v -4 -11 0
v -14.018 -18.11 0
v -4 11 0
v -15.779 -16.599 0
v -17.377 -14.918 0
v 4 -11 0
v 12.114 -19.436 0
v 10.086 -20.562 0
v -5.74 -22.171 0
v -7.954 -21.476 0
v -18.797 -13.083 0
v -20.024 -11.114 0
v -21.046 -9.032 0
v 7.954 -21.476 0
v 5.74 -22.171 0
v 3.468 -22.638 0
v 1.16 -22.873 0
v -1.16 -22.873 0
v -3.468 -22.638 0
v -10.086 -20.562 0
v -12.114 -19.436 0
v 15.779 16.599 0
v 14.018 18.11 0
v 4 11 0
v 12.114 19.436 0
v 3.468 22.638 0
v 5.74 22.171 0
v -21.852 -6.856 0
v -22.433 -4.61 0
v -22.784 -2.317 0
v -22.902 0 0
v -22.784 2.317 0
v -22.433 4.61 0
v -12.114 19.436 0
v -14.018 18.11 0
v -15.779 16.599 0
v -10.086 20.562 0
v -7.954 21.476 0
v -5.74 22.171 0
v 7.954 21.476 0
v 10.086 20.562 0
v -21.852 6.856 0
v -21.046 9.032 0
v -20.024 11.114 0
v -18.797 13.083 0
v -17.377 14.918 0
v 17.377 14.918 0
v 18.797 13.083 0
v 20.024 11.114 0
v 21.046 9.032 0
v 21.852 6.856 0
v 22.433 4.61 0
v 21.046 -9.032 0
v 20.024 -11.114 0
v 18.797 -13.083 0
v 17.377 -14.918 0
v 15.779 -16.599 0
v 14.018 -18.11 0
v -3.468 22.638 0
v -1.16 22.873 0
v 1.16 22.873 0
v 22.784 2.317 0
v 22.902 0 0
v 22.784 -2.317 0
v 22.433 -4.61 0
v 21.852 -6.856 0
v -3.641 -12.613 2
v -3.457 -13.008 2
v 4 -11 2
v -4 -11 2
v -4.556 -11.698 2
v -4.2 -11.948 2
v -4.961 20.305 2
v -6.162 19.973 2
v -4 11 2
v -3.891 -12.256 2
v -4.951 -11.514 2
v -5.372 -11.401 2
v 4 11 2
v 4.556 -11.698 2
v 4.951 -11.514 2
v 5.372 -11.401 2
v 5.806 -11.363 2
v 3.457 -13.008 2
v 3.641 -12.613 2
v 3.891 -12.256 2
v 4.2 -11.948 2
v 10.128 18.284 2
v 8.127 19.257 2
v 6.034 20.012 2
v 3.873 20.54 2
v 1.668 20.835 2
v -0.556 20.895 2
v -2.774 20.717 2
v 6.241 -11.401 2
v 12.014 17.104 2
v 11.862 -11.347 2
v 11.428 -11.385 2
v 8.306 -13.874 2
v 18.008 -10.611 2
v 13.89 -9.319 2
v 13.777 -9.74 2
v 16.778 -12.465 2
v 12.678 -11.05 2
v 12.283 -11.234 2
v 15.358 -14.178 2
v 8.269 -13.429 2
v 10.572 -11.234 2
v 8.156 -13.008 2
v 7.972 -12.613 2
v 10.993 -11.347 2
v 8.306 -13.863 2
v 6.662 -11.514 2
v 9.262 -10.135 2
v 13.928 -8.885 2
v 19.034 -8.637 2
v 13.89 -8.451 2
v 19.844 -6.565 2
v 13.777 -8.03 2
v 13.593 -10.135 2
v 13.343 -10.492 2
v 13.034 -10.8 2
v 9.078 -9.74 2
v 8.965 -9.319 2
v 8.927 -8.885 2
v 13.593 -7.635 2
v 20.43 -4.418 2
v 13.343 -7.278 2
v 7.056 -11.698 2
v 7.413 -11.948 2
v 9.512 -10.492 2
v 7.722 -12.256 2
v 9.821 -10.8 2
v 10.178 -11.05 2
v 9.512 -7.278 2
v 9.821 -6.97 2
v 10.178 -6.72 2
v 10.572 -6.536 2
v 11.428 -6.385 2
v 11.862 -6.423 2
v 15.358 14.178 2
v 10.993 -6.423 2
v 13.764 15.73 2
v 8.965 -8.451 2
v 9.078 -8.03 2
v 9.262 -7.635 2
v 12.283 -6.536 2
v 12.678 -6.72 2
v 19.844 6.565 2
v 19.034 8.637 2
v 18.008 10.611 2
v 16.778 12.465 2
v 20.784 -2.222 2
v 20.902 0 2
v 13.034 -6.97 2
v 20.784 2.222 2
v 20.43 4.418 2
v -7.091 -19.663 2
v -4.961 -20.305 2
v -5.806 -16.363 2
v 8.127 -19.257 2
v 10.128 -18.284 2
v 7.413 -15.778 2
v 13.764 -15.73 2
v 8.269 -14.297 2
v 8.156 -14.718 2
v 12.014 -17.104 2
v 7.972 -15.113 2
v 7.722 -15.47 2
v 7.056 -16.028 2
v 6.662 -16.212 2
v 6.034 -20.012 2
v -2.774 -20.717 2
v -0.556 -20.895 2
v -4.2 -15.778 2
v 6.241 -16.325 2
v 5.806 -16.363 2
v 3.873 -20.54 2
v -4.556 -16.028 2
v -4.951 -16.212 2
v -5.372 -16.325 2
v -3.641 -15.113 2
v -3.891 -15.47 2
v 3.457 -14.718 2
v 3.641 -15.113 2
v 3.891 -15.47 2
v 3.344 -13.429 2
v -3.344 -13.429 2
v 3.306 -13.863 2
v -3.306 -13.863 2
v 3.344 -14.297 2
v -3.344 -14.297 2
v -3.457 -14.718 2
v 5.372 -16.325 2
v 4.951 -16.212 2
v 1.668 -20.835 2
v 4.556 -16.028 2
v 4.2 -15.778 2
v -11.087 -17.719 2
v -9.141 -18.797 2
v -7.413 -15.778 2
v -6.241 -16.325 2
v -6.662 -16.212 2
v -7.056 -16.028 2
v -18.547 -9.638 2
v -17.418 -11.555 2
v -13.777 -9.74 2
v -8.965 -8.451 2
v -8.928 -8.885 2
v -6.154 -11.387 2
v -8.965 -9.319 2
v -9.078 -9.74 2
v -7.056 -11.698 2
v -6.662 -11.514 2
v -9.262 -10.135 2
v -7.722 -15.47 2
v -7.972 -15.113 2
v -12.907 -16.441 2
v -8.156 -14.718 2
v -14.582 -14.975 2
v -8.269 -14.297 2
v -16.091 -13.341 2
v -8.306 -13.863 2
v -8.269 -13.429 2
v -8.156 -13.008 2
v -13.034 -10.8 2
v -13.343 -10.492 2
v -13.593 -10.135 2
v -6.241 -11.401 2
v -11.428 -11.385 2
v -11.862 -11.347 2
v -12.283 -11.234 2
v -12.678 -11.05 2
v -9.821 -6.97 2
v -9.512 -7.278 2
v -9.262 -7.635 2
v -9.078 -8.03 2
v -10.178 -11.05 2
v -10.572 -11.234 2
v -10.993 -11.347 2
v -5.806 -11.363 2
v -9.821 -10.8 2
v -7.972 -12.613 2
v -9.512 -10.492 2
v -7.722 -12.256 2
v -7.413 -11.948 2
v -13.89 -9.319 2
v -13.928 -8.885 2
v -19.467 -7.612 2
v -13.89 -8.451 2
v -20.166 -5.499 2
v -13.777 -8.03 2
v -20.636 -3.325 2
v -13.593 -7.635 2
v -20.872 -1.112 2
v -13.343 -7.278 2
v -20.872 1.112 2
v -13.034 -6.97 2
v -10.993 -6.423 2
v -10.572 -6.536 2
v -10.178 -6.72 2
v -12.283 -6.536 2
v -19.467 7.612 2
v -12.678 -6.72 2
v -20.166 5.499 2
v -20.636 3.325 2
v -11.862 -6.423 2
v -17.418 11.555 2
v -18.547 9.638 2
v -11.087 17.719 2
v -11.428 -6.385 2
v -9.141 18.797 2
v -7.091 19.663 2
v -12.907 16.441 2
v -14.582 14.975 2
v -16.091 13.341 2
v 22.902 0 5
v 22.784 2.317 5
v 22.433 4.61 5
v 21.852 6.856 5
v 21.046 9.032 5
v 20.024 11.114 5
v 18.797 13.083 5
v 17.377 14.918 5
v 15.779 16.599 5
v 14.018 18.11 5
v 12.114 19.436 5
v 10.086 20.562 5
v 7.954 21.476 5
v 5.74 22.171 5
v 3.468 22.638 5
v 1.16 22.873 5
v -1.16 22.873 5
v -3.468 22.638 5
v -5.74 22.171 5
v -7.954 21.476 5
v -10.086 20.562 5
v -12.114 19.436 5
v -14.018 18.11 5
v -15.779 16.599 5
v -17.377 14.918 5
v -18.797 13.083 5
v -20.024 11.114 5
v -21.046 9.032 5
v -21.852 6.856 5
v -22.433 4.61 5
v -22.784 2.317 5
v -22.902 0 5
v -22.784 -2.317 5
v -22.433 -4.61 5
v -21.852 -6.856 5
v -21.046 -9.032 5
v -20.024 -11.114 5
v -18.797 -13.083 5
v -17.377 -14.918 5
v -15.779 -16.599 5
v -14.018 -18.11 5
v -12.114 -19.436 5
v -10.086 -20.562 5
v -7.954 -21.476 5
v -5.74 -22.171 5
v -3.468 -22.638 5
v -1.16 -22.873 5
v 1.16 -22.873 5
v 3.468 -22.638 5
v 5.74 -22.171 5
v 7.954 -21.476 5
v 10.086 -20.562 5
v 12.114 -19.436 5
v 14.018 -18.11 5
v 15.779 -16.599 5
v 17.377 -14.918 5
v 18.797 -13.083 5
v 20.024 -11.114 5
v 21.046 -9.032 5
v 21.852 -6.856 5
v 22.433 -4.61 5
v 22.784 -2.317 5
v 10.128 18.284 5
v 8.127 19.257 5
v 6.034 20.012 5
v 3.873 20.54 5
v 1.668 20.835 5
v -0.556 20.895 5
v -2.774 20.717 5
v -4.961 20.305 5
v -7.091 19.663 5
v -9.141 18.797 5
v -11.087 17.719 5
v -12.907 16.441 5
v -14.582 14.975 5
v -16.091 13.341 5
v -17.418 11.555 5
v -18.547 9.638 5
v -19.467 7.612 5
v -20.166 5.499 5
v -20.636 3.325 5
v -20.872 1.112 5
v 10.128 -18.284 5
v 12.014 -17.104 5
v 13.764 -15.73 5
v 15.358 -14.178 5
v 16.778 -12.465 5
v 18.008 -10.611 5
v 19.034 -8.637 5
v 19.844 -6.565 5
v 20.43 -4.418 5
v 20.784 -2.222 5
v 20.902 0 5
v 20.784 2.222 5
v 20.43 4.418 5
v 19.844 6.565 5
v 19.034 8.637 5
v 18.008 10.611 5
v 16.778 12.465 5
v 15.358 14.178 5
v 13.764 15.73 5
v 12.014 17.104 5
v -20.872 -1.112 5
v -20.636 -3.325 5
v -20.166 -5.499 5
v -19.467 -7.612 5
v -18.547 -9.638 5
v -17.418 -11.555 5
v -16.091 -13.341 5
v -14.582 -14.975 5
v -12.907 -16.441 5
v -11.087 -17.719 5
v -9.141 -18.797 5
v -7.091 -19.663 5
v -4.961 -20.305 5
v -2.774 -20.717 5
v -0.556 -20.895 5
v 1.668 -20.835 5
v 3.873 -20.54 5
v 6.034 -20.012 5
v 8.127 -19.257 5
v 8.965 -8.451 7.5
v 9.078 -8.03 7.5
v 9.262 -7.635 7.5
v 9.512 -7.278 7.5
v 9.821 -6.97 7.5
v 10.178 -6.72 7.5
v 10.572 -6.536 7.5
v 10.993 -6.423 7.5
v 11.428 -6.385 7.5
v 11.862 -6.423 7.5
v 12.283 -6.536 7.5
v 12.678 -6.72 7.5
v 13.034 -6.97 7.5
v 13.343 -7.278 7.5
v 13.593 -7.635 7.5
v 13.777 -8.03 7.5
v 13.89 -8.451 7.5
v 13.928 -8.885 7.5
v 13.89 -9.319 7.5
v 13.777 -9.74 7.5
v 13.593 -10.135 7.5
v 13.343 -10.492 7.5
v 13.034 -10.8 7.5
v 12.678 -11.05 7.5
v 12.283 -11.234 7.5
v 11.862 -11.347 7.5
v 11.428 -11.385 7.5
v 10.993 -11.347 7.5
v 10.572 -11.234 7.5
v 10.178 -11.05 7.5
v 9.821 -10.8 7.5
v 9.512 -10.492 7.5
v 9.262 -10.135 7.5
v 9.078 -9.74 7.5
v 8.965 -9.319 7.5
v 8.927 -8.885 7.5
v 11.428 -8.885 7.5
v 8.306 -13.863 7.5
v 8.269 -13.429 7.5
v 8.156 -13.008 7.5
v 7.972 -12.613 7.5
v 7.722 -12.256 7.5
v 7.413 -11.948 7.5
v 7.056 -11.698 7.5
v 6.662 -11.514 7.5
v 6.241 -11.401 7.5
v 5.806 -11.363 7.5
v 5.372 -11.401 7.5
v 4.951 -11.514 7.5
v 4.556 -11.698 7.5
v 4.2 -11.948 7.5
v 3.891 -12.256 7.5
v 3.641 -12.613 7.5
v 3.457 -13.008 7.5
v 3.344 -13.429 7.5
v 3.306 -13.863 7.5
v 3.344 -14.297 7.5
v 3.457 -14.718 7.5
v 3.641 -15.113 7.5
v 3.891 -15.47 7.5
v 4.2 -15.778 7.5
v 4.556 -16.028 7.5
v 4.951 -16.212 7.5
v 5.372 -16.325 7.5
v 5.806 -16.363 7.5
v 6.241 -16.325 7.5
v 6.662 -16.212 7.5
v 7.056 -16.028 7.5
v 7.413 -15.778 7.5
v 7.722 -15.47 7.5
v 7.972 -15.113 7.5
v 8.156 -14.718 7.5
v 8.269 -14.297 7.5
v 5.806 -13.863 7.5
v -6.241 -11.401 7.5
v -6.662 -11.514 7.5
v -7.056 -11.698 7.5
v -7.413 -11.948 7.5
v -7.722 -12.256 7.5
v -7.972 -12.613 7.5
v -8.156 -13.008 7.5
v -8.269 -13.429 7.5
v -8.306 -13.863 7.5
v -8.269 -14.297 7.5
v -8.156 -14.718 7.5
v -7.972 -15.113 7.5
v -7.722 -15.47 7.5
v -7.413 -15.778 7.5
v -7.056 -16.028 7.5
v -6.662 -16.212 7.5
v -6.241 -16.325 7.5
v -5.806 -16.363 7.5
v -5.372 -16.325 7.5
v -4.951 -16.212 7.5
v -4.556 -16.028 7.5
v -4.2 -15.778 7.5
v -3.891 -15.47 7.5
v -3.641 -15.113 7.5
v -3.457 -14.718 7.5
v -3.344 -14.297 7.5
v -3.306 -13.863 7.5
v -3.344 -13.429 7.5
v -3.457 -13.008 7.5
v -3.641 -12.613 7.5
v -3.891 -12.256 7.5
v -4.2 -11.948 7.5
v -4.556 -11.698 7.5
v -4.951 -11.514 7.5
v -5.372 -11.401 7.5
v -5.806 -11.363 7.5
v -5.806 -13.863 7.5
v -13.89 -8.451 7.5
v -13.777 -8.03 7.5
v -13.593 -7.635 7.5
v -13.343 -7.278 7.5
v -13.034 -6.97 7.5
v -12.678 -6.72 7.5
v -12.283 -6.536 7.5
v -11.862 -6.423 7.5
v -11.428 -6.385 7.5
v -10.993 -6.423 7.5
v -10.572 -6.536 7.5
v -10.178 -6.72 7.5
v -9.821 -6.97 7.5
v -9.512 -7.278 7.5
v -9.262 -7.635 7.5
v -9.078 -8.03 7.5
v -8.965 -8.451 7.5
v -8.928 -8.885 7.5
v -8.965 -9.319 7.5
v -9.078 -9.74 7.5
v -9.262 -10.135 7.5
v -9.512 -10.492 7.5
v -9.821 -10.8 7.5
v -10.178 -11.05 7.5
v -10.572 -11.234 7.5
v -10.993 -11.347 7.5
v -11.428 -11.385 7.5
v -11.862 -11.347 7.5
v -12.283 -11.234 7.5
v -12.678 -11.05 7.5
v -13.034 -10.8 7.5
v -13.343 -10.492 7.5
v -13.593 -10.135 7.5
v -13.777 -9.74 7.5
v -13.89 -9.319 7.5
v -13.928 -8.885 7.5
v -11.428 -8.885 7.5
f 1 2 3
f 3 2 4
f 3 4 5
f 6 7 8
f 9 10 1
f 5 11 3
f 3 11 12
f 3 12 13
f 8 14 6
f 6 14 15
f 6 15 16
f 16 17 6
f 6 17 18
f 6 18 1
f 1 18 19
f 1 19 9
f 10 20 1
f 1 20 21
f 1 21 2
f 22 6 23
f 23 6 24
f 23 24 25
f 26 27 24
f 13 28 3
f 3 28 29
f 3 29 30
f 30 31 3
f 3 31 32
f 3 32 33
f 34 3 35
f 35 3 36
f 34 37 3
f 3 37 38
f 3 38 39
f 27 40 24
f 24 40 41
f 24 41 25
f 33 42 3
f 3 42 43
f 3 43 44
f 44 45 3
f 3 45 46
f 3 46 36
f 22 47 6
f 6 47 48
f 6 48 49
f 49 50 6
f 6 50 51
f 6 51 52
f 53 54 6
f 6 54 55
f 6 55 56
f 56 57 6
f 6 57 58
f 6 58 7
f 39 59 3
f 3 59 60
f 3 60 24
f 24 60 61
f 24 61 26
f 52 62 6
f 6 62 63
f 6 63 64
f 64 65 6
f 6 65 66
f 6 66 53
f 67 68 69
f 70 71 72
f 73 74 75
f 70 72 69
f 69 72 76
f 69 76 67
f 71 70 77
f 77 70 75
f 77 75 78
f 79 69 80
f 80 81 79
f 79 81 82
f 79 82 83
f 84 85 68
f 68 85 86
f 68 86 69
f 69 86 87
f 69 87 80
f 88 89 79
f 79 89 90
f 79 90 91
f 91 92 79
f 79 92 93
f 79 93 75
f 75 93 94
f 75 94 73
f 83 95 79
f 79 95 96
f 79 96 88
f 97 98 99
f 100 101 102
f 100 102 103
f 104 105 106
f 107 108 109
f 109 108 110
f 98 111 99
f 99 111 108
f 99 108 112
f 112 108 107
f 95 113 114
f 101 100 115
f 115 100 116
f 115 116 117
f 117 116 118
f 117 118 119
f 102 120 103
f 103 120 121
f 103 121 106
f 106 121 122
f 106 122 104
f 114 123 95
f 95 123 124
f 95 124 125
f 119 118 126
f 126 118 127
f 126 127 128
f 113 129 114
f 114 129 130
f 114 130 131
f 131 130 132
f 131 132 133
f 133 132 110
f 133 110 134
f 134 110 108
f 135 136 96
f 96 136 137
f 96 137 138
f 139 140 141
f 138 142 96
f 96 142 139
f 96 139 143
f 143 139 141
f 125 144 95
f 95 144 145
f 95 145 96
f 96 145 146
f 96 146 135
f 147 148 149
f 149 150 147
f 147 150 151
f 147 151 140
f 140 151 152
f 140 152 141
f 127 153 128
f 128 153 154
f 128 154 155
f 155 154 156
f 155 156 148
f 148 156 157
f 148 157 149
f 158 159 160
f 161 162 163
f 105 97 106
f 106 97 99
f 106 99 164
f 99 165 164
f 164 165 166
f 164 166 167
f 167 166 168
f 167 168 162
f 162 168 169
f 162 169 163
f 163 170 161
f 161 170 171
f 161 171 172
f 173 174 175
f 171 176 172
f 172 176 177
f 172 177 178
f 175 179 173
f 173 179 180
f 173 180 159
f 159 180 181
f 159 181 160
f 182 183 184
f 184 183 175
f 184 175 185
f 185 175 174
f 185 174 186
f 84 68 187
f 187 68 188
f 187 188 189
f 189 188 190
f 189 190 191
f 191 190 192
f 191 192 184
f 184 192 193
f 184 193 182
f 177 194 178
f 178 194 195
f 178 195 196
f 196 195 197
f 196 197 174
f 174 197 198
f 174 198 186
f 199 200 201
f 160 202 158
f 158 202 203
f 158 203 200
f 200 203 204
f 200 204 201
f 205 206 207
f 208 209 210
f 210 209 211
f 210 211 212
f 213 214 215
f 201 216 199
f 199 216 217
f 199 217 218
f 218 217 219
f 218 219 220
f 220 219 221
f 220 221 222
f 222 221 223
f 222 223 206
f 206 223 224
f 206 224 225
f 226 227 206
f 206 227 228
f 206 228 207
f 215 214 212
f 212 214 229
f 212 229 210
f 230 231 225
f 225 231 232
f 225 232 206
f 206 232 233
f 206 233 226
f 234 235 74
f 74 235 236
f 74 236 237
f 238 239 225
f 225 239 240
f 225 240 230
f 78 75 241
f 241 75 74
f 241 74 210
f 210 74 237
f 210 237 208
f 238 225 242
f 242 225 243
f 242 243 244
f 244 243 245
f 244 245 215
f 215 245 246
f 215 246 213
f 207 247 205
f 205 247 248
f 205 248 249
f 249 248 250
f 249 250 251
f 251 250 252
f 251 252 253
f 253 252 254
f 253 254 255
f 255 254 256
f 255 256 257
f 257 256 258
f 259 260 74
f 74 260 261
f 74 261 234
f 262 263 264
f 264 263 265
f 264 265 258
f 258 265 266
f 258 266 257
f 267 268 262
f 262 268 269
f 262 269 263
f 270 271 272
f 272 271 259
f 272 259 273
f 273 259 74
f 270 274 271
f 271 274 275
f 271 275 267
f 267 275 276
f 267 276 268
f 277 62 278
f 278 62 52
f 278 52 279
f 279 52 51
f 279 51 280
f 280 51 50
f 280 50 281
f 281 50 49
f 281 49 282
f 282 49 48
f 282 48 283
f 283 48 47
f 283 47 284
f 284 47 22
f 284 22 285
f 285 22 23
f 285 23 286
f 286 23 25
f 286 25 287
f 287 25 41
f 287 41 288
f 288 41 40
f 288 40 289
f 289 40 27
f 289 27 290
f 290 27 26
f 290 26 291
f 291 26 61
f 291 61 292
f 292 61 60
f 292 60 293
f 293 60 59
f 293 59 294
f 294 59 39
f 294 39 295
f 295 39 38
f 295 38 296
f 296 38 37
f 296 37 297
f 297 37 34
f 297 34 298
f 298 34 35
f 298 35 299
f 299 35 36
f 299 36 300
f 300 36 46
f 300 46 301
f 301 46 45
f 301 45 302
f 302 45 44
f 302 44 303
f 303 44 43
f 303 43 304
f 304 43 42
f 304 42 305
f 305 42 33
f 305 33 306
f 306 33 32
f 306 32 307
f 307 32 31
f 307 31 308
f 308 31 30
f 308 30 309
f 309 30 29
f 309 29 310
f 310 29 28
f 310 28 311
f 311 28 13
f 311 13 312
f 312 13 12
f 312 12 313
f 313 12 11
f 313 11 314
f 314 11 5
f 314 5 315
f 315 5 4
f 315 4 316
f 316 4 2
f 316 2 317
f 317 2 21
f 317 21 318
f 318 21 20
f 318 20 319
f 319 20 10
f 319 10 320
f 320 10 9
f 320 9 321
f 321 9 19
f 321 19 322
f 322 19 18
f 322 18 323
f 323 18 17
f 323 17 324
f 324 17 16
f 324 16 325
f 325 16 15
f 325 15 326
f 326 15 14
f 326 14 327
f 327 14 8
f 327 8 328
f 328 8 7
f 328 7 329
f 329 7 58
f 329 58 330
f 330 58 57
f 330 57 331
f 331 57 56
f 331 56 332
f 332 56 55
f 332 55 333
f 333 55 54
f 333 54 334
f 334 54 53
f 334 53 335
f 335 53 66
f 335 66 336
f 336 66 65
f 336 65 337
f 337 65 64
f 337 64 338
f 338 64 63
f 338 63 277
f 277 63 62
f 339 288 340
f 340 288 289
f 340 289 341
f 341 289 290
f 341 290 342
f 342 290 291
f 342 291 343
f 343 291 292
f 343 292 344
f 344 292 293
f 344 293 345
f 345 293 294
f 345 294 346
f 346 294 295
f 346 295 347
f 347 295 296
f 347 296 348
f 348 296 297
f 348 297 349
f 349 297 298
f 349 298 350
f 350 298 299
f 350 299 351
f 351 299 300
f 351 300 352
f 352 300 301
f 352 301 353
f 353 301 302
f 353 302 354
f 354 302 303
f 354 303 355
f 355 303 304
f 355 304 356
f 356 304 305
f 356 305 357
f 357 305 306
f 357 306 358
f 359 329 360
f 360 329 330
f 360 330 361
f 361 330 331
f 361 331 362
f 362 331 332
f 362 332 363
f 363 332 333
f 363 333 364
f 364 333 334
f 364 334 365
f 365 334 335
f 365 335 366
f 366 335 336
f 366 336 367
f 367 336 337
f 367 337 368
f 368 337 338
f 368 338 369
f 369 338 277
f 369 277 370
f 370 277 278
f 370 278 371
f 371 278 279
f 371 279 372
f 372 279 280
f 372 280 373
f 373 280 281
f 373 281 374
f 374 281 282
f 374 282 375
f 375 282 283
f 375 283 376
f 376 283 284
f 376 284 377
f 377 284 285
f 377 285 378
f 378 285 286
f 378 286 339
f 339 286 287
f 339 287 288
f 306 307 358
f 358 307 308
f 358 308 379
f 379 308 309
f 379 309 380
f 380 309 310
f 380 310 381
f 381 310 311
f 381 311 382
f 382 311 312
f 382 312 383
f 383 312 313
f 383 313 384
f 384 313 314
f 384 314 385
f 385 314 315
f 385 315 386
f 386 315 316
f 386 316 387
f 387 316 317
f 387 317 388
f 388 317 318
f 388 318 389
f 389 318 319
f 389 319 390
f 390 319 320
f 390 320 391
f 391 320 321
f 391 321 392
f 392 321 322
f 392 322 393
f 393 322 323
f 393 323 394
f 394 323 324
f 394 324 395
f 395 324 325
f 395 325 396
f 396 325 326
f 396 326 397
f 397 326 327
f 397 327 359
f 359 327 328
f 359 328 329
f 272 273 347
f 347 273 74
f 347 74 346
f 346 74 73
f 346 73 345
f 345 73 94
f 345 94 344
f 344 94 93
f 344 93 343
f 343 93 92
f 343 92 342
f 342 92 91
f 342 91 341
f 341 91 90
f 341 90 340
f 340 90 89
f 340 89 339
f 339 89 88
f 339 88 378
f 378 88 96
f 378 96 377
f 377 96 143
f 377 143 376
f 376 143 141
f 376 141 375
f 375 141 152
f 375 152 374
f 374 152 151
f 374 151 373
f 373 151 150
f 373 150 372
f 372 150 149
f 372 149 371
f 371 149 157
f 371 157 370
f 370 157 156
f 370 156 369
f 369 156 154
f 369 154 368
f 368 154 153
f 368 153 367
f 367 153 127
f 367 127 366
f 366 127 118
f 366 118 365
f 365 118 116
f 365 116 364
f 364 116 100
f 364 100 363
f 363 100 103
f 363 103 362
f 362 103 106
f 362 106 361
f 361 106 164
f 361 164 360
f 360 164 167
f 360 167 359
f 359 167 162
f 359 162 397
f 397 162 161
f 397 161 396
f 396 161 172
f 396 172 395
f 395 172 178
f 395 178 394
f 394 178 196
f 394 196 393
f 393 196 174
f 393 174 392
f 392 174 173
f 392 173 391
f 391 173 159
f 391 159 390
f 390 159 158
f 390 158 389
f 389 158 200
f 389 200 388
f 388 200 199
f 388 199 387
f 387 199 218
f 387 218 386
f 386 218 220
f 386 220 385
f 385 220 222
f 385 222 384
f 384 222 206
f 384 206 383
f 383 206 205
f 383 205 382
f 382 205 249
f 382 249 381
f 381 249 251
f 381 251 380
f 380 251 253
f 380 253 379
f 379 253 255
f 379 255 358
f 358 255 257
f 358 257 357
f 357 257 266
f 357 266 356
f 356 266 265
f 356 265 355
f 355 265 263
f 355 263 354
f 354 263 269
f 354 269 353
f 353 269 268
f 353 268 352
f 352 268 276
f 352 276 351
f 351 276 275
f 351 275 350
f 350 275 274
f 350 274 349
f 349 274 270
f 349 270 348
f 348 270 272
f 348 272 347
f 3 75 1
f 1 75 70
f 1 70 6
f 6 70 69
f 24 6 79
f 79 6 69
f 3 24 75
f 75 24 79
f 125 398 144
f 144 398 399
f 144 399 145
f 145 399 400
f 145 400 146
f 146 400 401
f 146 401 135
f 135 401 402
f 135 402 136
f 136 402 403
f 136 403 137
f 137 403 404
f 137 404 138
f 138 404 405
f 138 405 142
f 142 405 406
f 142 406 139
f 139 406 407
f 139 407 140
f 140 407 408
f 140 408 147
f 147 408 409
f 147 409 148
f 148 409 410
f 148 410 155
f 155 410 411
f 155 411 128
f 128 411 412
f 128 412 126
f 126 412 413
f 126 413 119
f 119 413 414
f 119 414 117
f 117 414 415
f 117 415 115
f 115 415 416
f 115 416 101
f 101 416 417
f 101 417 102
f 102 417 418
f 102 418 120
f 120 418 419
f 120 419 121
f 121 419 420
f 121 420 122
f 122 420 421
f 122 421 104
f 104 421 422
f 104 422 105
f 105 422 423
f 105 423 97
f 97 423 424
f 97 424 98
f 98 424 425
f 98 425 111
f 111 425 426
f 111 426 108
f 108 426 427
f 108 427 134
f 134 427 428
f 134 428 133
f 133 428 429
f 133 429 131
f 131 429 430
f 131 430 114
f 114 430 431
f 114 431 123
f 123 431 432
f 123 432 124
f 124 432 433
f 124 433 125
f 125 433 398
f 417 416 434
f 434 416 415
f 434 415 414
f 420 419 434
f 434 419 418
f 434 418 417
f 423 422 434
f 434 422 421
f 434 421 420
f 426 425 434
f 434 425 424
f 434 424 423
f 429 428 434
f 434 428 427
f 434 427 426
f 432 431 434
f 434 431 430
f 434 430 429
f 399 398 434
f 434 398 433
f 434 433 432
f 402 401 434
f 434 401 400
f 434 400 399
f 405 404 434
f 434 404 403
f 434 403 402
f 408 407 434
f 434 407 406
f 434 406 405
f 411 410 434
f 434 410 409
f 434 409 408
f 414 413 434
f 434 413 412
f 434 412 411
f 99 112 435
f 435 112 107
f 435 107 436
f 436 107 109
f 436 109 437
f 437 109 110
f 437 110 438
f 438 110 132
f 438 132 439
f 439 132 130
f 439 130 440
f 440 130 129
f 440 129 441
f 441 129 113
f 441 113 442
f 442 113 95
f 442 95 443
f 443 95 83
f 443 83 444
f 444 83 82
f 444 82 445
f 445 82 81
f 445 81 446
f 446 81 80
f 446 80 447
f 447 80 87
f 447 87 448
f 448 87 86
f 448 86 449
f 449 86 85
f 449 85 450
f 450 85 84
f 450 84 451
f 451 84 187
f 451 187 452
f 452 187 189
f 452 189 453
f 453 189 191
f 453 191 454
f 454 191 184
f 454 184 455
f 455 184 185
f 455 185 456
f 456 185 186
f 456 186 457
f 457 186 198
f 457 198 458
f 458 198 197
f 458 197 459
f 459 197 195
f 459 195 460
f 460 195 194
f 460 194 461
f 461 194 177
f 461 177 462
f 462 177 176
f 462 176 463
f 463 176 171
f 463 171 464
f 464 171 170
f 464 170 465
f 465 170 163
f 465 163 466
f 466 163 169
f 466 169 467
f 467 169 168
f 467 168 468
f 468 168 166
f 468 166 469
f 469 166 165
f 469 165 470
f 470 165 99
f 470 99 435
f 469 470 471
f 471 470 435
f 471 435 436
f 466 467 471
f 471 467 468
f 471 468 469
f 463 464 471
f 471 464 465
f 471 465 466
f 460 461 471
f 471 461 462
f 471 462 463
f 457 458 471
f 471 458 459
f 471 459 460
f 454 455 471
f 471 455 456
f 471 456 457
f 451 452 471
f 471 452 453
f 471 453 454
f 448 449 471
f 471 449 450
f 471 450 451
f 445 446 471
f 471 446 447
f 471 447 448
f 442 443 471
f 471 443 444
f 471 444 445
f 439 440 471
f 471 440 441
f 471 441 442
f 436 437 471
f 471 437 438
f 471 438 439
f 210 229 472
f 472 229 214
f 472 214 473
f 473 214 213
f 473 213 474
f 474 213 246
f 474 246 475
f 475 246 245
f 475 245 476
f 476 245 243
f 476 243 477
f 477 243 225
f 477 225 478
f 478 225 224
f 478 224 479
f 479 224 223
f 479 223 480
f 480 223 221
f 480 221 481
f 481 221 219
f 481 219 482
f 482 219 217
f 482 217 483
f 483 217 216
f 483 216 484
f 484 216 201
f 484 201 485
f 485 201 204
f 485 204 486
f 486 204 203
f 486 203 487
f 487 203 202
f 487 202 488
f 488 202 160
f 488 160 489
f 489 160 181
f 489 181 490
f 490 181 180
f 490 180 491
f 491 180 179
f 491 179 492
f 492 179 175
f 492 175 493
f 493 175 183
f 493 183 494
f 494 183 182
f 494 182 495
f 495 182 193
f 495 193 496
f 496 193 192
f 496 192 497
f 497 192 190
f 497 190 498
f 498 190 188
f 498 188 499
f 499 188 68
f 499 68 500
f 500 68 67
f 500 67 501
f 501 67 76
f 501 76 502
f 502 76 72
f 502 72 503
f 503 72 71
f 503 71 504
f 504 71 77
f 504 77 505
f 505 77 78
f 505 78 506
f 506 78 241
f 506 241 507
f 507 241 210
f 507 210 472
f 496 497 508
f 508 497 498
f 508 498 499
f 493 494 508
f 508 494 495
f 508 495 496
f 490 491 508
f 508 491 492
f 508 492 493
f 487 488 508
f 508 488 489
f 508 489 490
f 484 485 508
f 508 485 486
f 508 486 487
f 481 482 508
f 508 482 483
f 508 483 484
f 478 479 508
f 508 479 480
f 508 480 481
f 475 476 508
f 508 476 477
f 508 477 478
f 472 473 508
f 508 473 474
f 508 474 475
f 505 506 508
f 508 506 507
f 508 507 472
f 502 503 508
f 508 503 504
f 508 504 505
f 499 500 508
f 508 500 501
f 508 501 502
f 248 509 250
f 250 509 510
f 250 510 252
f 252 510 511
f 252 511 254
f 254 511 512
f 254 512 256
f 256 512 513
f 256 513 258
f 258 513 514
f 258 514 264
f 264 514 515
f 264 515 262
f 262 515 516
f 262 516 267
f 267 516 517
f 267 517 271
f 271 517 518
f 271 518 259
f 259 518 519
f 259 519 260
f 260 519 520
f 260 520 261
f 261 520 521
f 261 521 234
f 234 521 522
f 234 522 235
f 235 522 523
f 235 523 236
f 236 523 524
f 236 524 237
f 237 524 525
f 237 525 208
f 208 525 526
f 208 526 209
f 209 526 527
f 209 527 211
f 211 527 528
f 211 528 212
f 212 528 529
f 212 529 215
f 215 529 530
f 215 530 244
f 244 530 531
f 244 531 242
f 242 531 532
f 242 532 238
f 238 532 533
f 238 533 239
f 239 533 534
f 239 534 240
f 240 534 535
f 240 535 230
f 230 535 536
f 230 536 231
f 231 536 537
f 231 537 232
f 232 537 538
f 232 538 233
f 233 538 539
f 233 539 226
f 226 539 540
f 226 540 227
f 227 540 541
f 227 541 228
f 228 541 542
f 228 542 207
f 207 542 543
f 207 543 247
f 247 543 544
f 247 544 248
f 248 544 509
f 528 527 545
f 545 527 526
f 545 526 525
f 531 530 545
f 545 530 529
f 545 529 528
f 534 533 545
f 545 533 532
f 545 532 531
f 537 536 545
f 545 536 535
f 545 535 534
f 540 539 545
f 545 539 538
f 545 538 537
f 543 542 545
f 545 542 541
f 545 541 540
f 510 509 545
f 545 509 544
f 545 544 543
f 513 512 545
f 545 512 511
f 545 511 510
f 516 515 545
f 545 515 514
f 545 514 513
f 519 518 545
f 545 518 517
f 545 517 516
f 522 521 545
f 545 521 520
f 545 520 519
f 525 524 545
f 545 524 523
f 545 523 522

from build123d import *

# Parameters (mm, degrees)
SCHNITT_LINEAR_AUSTRAGEN1_DEPTH = 10
SKIZZE3_R                       = 2.5
AUFSATZ_LINEAR_AUSTRAGEN1_DEPTH = 7.5
AUFSATZ_LINEAR_AUSTRAGEN2_DEPTH = 7.5
SKIZZE3_6_R                     = 2.5
AUFSATZ_LINEAR_AUSTRAGEN3_DEPTH = 7.5
SKIZZE3_7_R                     = 2.5
AUFSATZ_LINEAR_AUSTRAGEN4_DEPTH = 7.5


with BuildPart() as part:
    # Skizze1 → Rotation2 (revolve)
    with BuildSketch(Plane(origin=(0, 0, 0), x_dir=(1, 0, 0), z_dir=(0, 1, 0))):
        Polygon((0, 0), (22.902, 0), (22.902, -5), (20.902, -5), (20.902, -2), (0, -2), align=None)
    revolve(axis=Axis((0, 0, 2), (0, 0, -1)))

    # Skizze2 → Schnitt-Linear austragen1 (cut)
    with BuildSketch(Plane(origin=(0, 0, 0), x_dir=(-1, 0, 0), z_dir=(0, 0, -1))):
        Polygon((4, 0), (4, 11), (-4, 11), (-4, -11), (4, -11), align=None)
    extrude(amount=-SCHNITT_LINEAR_AUSTRAGEN1_DEPTH, mode=Mode.SUBTRACT)

    # Skizze3 → Aufsatz-Linear austragen1 (add)
    with BuildSketch(Plane.XY):
        with Locations((11.4275, -8.885)):
            Circle(SKIZZE3_R)
    extrude(amount=AUFSATZ_LINEAR_AUSTRAGEN1_DEPTH)

    # Skizze3<5> → Aufsatz-Linear austragen2 (add)
    with BuildSketch(Plane.XY):
        with BuildLine():
            ThreePointArc((8.3065, -13.863), (5.8065, -11.363), (3.3065, -13.863))
            ThreePointArc((3.3065, -13.863), (5.8065, -16.363), (8.3065, -13.863))
        make_face()
    extrude(amount=AUFSATZ_LINEAR_AUSTRAGEN2_DEPTH)

    # Skizze3<6> → Aufsatz-Linear austragen3 (add)
    with BuildSketch(Plane.XY):
        with Locations((-5.8065, -13.863)):
            Circle(SKIZZE3_6_R)
    extrude(amount=AUFSATZ_LINEAR_AUSTRAGEN3_DEPTH)

    # Skizze3<7> → Aufsatz-Linear austragen4 (add)
    with BuildSketch(Plane.XY):
        with Locations((-11.4275, -8.885)):
            Circle(SKIZZE3_7_R)
    extrude(amount=AUFSATZ_LINEAR_AUSTRAGEN4_DEPTH)


solid = part.part
